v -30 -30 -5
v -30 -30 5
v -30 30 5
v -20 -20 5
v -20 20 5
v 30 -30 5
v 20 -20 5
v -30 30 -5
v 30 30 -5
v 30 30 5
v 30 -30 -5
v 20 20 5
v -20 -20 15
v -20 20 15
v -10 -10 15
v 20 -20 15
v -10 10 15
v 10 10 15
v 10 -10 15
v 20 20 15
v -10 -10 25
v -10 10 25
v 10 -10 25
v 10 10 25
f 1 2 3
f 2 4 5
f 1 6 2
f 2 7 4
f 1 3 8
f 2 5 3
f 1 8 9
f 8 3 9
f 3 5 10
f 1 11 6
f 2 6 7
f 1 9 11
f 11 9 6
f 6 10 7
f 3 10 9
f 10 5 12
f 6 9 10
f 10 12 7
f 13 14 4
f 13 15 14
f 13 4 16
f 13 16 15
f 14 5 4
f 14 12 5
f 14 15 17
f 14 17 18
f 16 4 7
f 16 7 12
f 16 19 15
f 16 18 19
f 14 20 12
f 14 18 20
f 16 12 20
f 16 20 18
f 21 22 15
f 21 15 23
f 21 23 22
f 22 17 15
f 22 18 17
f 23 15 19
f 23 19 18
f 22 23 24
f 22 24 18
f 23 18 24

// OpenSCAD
// 3段階段状ピラミッド
// 底段: 60x60x10, 中段: 40x40x10, 上段: 20x20x10

translate([0, 0, 0])
    cube([60, 60, 10], center=true);

translate([0, 0, 10])
    cube([40, 40, 10], center=true);

translate([0, 0, 20])
    cube([20, 20, 10], center=true);
